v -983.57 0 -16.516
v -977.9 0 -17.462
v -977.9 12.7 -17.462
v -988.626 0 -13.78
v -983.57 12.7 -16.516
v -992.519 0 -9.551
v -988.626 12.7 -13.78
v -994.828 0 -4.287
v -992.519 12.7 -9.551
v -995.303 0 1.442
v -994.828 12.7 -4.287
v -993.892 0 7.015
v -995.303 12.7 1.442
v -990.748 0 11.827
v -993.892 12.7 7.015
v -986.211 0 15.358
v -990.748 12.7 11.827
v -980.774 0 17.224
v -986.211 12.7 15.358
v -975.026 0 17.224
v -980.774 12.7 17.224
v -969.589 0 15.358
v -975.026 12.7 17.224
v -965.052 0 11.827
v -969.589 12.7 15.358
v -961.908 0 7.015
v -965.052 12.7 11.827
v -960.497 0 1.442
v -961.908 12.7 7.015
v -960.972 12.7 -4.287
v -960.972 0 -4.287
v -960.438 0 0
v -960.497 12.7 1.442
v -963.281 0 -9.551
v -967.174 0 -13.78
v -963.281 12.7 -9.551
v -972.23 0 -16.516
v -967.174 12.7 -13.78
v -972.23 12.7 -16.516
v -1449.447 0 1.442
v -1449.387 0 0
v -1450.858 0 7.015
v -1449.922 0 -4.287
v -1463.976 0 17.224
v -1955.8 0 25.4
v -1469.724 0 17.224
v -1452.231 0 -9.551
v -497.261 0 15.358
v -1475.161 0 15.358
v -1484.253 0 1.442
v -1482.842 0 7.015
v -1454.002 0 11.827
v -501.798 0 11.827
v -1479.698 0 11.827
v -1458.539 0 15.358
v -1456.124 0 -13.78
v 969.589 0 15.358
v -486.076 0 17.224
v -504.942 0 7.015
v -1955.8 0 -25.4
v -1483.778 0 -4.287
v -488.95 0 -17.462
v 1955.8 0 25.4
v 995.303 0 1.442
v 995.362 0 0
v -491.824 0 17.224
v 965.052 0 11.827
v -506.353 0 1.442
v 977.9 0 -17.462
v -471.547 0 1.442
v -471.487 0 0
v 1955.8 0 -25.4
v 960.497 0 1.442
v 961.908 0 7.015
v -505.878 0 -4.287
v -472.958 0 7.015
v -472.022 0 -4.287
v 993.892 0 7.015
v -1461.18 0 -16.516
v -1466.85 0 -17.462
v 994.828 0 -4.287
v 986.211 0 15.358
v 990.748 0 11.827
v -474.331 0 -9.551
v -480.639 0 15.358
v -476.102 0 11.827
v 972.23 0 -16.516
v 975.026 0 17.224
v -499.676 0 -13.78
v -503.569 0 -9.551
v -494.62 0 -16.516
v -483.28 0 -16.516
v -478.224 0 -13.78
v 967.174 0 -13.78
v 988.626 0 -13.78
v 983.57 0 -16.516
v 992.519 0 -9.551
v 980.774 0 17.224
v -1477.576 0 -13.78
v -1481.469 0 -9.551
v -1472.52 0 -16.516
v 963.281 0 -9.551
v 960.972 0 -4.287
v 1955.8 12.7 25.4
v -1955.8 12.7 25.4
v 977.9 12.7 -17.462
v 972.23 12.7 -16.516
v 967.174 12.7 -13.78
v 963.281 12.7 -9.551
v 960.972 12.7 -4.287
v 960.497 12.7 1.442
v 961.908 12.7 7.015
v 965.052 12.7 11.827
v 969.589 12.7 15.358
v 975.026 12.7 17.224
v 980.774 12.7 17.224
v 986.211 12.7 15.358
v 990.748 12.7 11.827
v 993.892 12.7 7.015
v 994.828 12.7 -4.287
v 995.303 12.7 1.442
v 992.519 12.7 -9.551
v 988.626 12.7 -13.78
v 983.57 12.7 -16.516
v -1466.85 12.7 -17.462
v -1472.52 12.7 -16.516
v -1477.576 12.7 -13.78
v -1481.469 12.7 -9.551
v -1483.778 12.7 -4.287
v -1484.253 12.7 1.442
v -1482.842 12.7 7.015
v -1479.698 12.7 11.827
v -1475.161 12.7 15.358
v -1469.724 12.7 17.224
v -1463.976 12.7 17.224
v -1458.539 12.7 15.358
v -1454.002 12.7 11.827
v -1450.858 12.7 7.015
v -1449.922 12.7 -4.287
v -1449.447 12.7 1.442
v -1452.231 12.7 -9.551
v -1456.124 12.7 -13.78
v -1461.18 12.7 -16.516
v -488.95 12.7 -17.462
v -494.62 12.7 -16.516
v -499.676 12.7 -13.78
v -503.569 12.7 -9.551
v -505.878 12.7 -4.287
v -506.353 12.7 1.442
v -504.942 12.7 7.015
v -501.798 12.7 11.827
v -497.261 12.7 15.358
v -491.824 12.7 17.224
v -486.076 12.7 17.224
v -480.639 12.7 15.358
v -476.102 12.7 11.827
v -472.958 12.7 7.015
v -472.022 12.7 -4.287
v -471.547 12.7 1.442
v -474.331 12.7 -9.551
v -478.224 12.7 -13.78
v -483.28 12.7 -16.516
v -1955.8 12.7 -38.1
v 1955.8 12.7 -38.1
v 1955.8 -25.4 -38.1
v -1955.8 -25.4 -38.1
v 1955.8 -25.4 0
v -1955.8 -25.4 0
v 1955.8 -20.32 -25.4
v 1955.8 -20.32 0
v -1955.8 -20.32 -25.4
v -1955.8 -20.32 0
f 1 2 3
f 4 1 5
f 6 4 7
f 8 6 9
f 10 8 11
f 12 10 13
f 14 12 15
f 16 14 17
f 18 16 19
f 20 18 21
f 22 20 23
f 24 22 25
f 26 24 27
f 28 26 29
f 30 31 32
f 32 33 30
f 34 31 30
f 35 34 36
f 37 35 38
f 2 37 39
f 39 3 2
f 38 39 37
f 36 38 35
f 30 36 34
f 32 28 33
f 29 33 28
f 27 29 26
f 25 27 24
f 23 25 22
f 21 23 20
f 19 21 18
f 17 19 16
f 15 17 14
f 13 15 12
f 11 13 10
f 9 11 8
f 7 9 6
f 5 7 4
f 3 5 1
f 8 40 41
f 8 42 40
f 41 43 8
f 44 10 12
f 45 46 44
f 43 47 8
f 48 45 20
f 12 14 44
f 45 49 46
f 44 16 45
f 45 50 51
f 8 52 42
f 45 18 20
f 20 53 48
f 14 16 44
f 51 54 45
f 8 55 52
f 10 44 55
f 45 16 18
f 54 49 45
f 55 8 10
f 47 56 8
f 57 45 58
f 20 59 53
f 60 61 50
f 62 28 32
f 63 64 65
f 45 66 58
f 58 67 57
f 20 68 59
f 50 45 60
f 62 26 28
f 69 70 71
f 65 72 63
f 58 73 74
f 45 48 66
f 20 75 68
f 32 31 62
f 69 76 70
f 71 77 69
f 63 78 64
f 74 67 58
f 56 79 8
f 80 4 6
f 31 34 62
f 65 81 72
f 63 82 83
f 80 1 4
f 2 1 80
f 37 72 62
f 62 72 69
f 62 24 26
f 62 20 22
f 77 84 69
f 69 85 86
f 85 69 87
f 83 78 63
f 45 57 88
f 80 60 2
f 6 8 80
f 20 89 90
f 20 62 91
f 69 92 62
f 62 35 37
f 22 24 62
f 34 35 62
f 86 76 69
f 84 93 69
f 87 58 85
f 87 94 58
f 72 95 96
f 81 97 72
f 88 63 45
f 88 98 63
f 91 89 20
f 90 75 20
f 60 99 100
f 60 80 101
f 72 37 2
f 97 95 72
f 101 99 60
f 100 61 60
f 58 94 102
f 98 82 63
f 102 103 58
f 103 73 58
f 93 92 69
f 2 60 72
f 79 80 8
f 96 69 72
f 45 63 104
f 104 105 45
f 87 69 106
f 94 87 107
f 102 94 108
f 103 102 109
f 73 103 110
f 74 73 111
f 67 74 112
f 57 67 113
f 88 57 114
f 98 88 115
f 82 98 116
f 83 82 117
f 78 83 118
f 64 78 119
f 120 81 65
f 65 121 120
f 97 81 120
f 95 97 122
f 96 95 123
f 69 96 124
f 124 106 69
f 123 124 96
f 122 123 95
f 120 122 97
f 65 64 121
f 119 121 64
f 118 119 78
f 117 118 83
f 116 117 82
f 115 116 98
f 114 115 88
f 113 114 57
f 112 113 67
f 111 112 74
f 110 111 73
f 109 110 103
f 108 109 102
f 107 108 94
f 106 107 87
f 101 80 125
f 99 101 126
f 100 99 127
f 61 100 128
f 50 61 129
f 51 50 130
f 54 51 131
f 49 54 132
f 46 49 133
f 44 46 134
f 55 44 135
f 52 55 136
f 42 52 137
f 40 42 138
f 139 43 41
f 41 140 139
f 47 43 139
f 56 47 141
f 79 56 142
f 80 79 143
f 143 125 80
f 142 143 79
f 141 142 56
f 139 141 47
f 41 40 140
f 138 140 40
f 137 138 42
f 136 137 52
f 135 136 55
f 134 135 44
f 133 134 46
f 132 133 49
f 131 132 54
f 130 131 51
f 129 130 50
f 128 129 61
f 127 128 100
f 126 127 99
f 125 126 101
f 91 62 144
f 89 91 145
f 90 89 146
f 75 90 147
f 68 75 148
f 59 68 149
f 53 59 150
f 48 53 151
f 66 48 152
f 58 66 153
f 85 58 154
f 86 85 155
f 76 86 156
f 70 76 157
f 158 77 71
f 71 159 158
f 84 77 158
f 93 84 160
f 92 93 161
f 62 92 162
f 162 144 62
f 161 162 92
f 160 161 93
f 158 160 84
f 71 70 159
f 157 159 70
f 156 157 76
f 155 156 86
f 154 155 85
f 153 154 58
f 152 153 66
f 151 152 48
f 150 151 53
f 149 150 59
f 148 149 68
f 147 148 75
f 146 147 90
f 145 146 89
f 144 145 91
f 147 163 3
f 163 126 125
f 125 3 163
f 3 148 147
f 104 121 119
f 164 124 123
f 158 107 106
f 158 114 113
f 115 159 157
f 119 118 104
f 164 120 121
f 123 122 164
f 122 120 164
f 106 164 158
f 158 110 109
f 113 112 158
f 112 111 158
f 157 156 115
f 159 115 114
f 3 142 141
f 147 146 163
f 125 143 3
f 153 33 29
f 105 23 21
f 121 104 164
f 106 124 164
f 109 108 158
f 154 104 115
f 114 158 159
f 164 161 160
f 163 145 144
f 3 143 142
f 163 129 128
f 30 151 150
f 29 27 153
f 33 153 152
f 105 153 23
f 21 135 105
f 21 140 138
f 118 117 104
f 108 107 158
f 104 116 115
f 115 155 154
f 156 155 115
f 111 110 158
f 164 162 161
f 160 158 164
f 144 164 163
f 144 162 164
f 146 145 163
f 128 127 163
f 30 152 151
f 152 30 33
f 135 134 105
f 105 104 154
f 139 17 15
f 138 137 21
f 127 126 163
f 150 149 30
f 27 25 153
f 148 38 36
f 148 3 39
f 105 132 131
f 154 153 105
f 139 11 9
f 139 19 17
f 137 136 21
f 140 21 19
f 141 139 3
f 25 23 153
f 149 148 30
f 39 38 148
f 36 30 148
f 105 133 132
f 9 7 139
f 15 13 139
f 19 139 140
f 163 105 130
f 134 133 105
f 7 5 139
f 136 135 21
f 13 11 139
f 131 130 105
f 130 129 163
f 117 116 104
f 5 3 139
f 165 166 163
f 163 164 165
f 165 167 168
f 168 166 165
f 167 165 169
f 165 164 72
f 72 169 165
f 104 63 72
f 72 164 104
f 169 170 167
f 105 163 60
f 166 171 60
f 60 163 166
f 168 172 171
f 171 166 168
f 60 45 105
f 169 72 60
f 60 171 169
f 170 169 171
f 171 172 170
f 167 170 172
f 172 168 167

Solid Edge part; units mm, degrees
sketch "Sketch1" plane through (0, 0, 0) normal (1, 0, 0) x (0, 1, 0)
  line L0 (-25.4, 38.1) -> (-25.4, -38.1)
  line L1 (-25.4, -38.1) -> (25.4, -38.1)
  line L2 (25.4, -38.1) -> (25.4, 38.1)
  line L3 (25.4, 38.1) -> (-25.4, 38.1)
extrude "Protrusion1" add sketch "Sketch1" along normal mid plane 3911.6
sketch "Sketch2" plane through (-1955.8, 0, 0) normal (-1, 0, 0) x (0, -1, 0)
  line L0 (0, 38.1) -> (0, -25.4)
  line L1 (0, -25.4) -> (20.32, -25.4)
  line L2 (20.32, -25.4) -> (20.32, 0)
  line L3 (20.32, 0) -> (25.4, 0)
  line L4 (25.4, 38.1) -> (25.4, 0)
  line L5 (1.511, 38.1) -> (25.4, 38.1)
extrude "ExtrudedCutout_1" cut sketch "Sketch2" along normal mid plane 10546.8239 material side at (-1955.8, -0.05, 6.35)
sketch "Sketch3" plane through (-1955.8, 0, 0) normal (-1, 0, 0) x (0, -1, 0)
  line L0 (-12.7, 38.1) -> (-12.7, -38.1)
  line L1 (-12.7, -38.1) -> (-25.4, -38.1)
  line L2 (-25.4, -38.1) -> (-25.4, 38.1)
  line L3 (-25.4, 38.1) -> (-12.7, 38.1)
extrude "ExtrudedCutout_2" cut sketch "Sketch3" along normal mid plane 8821.0926
sketch "Sketch4" plane through (0, 0, 6.35) normal (0, -1, 0) x (1, 0, 0)
  circle A0 centre (-977.9, -6.35) radius 17.4625
  circle A1 centre (977.9, -6.35) radius 17.4625
extrude "ExtrudedCutout_3" cut sketch "Sketch4" against normal blind 231.3336 and the other way blind 20.0651
sketch "Sketch5" plane through (0, 0, 6.35) normal (0, -1, 0) x (1, 0, 0)
  circle A0 centre (-1466.85, -6.35) radius 17.4625
  circle A1 centre (-488.95, -6.35) radius 17.4625
extrude "ExtrudedCutout_4" cut sketch "Sketch5" against normal blind 134.8022 and the other way blind 17.756
sketch "Sketch6" plane through (-1955.8, -6.35, 0) normal (-1, 0, 0) x (0, -1, 0)
  line L0 (-6.35, 25.4) -> (-6.35, 38.1)
  line L1 (-6.35, 38.1) -> (-19.05, 38.1)
  line L2 (-19.05, 38.1) -> (-19.05, 25.4)
  line L3 (-19.05, 25.4) -> (-6.35, 25.4)
extrude "ExtrudedCutout_5" cut sketch "Sketch6" against normal blind 4170.1198 and the other way blind 686.2895
properties material "Steel"
